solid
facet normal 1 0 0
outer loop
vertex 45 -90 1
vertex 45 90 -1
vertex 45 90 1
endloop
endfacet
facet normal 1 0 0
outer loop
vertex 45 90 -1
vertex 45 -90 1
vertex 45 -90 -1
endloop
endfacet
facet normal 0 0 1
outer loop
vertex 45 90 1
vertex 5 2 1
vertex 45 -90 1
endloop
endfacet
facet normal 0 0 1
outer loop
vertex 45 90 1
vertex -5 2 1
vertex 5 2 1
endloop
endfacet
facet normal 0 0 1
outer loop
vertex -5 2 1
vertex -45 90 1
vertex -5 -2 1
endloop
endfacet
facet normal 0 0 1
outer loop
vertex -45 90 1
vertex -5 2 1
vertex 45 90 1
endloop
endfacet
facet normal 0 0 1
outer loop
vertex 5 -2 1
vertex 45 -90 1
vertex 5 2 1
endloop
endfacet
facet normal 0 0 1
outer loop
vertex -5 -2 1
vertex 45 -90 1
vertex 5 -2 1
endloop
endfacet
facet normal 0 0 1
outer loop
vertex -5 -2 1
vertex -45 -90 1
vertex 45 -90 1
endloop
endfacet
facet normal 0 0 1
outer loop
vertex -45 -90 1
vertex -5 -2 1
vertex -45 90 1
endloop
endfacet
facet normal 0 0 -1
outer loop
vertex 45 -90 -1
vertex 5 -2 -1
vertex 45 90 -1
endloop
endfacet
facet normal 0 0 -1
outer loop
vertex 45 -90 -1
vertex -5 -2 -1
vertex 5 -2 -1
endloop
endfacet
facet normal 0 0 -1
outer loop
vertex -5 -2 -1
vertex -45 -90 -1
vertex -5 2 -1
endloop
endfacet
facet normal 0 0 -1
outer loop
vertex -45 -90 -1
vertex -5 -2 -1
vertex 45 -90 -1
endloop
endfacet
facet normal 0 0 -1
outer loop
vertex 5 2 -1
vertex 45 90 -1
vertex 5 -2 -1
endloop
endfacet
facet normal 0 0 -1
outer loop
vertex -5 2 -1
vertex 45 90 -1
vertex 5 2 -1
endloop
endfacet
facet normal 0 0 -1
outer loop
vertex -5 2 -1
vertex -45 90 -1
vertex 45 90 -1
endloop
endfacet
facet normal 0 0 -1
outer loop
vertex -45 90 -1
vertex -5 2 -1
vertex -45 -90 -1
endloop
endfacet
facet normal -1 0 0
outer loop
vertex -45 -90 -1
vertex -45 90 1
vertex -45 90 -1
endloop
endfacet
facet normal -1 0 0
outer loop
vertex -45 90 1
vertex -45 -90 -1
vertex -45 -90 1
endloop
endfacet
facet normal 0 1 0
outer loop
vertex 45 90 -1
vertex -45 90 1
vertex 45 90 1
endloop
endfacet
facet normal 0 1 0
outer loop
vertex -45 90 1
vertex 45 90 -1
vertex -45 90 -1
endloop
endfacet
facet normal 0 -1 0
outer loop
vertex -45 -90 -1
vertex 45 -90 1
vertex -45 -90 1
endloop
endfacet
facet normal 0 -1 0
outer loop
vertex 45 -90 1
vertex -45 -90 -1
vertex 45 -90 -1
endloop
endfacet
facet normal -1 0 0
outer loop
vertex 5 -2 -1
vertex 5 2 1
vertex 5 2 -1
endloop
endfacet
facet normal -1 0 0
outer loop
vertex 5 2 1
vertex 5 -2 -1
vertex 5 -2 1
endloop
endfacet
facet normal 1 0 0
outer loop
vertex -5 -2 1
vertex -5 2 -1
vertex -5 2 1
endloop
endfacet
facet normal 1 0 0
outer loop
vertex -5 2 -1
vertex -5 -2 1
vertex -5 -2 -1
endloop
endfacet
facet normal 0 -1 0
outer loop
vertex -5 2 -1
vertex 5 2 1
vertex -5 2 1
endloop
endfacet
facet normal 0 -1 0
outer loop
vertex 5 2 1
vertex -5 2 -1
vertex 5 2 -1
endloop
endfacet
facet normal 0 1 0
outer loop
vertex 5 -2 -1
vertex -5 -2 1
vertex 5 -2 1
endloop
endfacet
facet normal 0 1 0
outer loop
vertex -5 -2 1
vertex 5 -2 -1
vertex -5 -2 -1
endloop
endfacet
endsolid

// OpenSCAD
// ========================================
// a 90 x 180 x 2 mm plate with one 10 x 4 mm slots
// NeuroCAD canonical IR; dimensions are millimetres
// ========================================
$fn = 48;

difference() {
  cube(size=[90, 180, 2], center=true);
  cube(size=[10, 4, 4], center=true);
}
